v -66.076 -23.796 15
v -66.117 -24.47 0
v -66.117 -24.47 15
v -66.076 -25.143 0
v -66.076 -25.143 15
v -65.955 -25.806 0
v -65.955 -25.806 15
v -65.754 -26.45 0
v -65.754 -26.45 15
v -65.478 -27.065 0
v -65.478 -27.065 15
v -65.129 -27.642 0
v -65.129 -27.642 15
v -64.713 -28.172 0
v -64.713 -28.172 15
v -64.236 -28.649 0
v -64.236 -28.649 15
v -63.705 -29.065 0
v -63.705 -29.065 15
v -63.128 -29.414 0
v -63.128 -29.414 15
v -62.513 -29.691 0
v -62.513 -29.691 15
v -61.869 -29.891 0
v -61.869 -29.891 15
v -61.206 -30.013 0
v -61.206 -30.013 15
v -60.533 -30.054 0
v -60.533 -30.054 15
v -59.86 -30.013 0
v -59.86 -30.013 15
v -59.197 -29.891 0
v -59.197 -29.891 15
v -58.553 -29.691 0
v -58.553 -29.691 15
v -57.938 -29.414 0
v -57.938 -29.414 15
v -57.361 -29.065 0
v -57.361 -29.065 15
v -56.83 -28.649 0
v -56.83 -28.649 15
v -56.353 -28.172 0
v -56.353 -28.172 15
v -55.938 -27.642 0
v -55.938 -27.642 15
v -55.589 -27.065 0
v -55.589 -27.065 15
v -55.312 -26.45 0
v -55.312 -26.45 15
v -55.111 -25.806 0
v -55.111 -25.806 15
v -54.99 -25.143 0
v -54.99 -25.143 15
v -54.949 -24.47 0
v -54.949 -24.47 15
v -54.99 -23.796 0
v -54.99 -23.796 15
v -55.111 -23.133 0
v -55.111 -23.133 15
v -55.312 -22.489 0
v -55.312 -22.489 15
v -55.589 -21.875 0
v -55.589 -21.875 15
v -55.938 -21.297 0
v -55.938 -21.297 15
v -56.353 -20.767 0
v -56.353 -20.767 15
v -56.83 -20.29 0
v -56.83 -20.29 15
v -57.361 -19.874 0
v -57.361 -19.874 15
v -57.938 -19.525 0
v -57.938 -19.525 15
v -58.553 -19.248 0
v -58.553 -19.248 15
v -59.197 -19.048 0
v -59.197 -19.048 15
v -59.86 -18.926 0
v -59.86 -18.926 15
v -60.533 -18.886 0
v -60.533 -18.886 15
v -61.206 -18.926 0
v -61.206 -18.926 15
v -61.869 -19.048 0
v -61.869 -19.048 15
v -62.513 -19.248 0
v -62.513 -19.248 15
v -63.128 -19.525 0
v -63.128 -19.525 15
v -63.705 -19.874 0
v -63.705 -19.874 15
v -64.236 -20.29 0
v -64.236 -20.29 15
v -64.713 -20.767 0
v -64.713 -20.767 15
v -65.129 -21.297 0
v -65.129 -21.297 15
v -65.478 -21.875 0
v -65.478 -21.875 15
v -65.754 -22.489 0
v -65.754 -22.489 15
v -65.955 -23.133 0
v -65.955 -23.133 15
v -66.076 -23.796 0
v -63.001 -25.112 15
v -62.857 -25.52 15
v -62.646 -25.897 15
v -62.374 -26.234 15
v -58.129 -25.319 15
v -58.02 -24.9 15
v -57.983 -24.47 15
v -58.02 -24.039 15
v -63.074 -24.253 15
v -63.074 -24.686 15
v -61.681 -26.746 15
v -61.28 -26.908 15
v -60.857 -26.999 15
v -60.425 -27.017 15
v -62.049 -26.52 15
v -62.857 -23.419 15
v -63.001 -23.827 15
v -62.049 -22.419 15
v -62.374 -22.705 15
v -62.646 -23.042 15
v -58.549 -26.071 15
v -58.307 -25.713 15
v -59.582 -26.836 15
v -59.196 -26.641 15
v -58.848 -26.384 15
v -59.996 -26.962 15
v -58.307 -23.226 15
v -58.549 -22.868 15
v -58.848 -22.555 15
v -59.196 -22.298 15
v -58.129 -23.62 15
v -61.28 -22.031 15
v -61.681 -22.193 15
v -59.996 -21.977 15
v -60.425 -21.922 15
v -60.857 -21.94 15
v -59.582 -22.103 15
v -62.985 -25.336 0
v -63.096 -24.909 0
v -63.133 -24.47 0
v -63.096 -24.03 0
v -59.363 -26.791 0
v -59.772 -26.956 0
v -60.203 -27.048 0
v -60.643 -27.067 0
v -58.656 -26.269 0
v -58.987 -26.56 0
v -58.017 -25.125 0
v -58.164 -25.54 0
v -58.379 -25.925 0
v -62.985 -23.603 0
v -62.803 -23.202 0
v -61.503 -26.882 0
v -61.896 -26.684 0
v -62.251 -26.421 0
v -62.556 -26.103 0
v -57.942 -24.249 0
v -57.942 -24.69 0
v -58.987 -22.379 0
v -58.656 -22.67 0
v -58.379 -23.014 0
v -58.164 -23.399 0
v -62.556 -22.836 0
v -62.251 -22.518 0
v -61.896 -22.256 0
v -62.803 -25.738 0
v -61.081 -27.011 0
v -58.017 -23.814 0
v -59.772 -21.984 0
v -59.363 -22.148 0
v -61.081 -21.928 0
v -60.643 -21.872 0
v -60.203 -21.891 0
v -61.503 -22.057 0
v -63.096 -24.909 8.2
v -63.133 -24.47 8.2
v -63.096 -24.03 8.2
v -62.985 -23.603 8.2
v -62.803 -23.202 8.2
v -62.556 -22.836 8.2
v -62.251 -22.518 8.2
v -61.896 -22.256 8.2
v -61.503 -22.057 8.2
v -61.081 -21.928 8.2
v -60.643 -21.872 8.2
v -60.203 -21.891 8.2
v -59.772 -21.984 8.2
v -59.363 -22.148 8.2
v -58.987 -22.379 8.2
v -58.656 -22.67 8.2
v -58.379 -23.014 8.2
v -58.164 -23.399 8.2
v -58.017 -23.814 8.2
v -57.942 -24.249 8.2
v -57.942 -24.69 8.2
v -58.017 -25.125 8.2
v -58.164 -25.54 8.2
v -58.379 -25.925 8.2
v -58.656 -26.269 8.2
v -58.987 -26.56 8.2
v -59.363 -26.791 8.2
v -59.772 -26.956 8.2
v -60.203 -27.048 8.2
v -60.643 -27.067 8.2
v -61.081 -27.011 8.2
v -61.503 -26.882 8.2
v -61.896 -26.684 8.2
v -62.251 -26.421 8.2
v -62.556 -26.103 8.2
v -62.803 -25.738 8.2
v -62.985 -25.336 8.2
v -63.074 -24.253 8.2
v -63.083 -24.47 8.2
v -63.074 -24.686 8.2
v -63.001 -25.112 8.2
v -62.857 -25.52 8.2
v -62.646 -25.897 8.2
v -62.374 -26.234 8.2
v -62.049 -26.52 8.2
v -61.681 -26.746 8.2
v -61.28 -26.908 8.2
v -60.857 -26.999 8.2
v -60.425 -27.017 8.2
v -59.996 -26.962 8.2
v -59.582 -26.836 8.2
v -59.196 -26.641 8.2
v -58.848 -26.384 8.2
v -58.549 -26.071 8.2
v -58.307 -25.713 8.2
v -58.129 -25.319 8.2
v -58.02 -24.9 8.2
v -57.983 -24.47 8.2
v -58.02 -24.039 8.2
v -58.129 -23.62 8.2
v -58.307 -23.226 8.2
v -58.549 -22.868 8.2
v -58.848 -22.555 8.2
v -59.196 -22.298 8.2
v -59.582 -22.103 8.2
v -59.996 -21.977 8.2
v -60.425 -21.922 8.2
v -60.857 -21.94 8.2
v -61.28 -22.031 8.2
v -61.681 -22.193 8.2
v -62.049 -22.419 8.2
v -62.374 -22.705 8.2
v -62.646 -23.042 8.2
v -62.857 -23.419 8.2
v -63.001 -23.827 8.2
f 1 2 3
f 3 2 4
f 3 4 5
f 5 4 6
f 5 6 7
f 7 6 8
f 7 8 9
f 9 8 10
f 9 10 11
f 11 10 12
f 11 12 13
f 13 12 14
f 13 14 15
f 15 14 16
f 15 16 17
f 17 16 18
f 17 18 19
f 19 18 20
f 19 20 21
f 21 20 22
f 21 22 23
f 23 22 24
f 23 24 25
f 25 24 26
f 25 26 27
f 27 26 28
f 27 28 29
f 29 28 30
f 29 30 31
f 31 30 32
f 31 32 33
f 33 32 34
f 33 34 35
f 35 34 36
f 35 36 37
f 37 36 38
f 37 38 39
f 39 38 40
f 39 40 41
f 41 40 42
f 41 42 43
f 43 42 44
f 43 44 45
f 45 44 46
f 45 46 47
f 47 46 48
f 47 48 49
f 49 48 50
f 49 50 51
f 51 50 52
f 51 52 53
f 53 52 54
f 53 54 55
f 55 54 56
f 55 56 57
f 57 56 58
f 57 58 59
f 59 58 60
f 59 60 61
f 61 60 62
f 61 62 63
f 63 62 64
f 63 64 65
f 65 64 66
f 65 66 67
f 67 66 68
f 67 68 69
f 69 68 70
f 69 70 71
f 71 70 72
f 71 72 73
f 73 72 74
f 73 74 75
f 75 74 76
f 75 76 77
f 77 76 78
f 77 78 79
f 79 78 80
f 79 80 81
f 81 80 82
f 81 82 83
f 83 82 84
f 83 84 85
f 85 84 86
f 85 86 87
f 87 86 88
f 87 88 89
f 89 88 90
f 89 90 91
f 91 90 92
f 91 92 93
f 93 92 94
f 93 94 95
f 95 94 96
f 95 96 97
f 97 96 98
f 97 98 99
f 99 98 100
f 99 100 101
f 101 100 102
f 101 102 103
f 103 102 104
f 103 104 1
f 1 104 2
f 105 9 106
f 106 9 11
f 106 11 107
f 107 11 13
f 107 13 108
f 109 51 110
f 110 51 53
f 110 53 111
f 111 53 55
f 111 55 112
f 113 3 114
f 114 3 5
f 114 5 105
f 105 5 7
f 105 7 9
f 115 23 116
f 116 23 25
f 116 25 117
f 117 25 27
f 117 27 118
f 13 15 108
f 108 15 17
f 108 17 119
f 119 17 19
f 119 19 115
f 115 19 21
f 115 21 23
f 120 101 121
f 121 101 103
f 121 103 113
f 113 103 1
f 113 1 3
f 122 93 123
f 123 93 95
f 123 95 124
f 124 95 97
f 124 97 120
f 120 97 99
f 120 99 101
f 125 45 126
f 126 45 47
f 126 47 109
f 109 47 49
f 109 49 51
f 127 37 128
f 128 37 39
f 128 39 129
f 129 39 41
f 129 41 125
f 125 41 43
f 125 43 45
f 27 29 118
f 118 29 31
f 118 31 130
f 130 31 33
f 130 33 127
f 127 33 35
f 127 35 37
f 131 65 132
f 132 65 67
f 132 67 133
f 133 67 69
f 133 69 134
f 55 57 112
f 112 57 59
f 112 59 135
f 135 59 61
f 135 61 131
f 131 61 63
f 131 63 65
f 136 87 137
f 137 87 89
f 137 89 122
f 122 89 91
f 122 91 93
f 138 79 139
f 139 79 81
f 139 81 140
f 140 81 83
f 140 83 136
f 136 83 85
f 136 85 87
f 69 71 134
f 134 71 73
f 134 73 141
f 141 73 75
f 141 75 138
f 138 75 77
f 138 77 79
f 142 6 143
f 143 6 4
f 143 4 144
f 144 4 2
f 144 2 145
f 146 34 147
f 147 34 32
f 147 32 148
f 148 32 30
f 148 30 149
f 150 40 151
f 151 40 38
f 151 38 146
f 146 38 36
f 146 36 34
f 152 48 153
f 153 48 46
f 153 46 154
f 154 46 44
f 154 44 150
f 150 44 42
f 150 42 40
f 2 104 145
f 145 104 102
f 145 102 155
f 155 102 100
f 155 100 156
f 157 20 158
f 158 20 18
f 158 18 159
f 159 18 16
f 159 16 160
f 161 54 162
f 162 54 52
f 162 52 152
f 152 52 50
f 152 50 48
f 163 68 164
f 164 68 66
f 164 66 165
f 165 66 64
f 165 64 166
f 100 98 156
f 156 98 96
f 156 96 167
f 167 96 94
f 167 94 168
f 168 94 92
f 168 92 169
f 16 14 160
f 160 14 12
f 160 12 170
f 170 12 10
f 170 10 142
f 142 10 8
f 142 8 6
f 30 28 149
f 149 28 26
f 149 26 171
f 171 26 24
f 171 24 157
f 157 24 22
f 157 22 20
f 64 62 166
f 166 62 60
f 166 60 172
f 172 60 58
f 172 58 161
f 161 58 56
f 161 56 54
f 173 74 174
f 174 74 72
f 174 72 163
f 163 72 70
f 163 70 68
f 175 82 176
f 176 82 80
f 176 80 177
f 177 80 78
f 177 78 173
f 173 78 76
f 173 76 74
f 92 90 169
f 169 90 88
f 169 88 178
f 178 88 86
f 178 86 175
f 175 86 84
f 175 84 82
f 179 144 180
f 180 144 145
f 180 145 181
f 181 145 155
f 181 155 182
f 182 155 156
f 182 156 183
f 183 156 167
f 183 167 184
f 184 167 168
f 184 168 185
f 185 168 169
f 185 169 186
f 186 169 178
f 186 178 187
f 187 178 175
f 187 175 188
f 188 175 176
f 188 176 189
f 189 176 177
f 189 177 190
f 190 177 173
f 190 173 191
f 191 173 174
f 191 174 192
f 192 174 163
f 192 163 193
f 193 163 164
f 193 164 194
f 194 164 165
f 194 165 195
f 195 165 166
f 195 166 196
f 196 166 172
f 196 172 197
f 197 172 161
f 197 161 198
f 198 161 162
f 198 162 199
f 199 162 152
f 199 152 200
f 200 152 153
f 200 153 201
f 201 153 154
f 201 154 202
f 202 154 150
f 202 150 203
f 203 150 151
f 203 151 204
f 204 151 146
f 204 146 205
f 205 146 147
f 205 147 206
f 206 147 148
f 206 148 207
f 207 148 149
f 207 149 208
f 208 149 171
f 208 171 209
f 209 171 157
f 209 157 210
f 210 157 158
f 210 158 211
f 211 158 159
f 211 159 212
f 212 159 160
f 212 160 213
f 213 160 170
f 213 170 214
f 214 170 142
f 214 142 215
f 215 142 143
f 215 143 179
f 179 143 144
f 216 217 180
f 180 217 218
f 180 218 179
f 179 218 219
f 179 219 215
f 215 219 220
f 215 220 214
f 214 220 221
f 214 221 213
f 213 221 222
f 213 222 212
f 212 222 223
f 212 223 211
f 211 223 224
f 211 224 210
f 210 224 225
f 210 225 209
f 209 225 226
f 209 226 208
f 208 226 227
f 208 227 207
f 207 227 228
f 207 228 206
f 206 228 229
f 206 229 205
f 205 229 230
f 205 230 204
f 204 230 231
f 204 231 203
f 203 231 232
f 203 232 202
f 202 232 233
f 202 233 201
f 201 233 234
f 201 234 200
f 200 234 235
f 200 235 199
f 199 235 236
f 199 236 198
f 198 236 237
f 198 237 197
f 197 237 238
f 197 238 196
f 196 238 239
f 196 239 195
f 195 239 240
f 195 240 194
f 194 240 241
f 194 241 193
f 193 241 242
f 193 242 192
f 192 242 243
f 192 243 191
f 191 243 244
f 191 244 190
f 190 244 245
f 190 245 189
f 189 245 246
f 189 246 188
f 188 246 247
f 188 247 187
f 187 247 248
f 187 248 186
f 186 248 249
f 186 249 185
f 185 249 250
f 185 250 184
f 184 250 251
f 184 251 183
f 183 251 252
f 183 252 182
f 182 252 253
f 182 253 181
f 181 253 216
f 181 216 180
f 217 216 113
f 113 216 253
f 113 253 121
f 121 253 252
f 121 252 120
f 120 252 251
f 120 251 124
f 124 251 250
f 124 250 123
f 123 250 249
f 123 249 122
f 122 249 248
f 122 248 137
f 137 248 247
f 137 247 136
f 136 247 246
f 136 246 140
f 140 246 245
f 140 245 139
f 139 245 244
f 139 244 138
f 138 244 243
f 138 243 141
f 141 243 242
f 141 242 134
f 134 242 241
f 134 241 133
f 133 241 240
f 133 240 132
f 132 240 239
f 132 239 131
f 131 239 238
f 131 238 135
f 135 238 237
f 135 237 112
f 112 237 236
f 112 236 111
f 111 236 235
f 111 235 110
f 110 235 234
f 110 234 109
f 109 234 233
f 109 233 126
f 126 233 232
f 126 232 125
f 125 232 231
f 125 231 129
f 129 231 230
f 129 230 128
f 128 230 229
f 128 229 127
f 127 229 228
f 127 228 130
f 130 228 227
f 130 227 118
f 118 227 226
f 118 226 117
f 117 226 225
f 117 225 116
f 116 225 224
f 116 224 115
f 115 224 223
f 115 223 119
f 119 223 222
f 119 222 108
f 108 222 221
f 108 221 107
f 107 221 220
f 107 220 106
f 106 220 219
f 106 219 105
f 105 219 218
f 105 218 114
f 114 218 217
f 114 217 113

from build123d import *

# Parameters (mm, degrees)
SKETCH1_R           = 5.584000144
BOSS_EXTRUDE1_DEPTH = 15
SKETCH2_R           = 2.6
CUT_EXTRUDE1_DEPTH  = 8.2
SKETCH3_R           = 2.55
CUT_EXTRUDE2_DEPTH  = 7


with BuildPart() as part:
    # Sketch1 → Boss-Extrude1 (new body)
    with BuildSketch(Plane.XY):
        with Locations((-60.533127818, -24.469533588)):
            Circle(SKETCH1_R)
    extrude(amount=BOSS_EXTRUDE1_DEPTH)

    # Sketch2 → Cut-Extrude1 (cut)
    with BuildSketch(Plane(origin=(0, 0, 0), x_dir=(-1, 0, 0), z_dir=(0, 0, -1))):
        with Locations((60.533127818, -24.469533588)):
            Circle(SKETCH2_R)
    extrude(amount=-CUT_EXTRUDE1_DEPTH, mode=Mode.SUBTRACT)

    # Sketch3 → Cut-Extrude2 (cut)
    with BuildSketch(Plane.XY.offset(15)):
        with Locations((-60.533127818, -24.469533588)):
            Circle(SKETCH3_R)
    extrude(amount=-CUT_EXTRUDE2_DEPTH, mode=Mode.SUBTRACT)


solid = part.part
